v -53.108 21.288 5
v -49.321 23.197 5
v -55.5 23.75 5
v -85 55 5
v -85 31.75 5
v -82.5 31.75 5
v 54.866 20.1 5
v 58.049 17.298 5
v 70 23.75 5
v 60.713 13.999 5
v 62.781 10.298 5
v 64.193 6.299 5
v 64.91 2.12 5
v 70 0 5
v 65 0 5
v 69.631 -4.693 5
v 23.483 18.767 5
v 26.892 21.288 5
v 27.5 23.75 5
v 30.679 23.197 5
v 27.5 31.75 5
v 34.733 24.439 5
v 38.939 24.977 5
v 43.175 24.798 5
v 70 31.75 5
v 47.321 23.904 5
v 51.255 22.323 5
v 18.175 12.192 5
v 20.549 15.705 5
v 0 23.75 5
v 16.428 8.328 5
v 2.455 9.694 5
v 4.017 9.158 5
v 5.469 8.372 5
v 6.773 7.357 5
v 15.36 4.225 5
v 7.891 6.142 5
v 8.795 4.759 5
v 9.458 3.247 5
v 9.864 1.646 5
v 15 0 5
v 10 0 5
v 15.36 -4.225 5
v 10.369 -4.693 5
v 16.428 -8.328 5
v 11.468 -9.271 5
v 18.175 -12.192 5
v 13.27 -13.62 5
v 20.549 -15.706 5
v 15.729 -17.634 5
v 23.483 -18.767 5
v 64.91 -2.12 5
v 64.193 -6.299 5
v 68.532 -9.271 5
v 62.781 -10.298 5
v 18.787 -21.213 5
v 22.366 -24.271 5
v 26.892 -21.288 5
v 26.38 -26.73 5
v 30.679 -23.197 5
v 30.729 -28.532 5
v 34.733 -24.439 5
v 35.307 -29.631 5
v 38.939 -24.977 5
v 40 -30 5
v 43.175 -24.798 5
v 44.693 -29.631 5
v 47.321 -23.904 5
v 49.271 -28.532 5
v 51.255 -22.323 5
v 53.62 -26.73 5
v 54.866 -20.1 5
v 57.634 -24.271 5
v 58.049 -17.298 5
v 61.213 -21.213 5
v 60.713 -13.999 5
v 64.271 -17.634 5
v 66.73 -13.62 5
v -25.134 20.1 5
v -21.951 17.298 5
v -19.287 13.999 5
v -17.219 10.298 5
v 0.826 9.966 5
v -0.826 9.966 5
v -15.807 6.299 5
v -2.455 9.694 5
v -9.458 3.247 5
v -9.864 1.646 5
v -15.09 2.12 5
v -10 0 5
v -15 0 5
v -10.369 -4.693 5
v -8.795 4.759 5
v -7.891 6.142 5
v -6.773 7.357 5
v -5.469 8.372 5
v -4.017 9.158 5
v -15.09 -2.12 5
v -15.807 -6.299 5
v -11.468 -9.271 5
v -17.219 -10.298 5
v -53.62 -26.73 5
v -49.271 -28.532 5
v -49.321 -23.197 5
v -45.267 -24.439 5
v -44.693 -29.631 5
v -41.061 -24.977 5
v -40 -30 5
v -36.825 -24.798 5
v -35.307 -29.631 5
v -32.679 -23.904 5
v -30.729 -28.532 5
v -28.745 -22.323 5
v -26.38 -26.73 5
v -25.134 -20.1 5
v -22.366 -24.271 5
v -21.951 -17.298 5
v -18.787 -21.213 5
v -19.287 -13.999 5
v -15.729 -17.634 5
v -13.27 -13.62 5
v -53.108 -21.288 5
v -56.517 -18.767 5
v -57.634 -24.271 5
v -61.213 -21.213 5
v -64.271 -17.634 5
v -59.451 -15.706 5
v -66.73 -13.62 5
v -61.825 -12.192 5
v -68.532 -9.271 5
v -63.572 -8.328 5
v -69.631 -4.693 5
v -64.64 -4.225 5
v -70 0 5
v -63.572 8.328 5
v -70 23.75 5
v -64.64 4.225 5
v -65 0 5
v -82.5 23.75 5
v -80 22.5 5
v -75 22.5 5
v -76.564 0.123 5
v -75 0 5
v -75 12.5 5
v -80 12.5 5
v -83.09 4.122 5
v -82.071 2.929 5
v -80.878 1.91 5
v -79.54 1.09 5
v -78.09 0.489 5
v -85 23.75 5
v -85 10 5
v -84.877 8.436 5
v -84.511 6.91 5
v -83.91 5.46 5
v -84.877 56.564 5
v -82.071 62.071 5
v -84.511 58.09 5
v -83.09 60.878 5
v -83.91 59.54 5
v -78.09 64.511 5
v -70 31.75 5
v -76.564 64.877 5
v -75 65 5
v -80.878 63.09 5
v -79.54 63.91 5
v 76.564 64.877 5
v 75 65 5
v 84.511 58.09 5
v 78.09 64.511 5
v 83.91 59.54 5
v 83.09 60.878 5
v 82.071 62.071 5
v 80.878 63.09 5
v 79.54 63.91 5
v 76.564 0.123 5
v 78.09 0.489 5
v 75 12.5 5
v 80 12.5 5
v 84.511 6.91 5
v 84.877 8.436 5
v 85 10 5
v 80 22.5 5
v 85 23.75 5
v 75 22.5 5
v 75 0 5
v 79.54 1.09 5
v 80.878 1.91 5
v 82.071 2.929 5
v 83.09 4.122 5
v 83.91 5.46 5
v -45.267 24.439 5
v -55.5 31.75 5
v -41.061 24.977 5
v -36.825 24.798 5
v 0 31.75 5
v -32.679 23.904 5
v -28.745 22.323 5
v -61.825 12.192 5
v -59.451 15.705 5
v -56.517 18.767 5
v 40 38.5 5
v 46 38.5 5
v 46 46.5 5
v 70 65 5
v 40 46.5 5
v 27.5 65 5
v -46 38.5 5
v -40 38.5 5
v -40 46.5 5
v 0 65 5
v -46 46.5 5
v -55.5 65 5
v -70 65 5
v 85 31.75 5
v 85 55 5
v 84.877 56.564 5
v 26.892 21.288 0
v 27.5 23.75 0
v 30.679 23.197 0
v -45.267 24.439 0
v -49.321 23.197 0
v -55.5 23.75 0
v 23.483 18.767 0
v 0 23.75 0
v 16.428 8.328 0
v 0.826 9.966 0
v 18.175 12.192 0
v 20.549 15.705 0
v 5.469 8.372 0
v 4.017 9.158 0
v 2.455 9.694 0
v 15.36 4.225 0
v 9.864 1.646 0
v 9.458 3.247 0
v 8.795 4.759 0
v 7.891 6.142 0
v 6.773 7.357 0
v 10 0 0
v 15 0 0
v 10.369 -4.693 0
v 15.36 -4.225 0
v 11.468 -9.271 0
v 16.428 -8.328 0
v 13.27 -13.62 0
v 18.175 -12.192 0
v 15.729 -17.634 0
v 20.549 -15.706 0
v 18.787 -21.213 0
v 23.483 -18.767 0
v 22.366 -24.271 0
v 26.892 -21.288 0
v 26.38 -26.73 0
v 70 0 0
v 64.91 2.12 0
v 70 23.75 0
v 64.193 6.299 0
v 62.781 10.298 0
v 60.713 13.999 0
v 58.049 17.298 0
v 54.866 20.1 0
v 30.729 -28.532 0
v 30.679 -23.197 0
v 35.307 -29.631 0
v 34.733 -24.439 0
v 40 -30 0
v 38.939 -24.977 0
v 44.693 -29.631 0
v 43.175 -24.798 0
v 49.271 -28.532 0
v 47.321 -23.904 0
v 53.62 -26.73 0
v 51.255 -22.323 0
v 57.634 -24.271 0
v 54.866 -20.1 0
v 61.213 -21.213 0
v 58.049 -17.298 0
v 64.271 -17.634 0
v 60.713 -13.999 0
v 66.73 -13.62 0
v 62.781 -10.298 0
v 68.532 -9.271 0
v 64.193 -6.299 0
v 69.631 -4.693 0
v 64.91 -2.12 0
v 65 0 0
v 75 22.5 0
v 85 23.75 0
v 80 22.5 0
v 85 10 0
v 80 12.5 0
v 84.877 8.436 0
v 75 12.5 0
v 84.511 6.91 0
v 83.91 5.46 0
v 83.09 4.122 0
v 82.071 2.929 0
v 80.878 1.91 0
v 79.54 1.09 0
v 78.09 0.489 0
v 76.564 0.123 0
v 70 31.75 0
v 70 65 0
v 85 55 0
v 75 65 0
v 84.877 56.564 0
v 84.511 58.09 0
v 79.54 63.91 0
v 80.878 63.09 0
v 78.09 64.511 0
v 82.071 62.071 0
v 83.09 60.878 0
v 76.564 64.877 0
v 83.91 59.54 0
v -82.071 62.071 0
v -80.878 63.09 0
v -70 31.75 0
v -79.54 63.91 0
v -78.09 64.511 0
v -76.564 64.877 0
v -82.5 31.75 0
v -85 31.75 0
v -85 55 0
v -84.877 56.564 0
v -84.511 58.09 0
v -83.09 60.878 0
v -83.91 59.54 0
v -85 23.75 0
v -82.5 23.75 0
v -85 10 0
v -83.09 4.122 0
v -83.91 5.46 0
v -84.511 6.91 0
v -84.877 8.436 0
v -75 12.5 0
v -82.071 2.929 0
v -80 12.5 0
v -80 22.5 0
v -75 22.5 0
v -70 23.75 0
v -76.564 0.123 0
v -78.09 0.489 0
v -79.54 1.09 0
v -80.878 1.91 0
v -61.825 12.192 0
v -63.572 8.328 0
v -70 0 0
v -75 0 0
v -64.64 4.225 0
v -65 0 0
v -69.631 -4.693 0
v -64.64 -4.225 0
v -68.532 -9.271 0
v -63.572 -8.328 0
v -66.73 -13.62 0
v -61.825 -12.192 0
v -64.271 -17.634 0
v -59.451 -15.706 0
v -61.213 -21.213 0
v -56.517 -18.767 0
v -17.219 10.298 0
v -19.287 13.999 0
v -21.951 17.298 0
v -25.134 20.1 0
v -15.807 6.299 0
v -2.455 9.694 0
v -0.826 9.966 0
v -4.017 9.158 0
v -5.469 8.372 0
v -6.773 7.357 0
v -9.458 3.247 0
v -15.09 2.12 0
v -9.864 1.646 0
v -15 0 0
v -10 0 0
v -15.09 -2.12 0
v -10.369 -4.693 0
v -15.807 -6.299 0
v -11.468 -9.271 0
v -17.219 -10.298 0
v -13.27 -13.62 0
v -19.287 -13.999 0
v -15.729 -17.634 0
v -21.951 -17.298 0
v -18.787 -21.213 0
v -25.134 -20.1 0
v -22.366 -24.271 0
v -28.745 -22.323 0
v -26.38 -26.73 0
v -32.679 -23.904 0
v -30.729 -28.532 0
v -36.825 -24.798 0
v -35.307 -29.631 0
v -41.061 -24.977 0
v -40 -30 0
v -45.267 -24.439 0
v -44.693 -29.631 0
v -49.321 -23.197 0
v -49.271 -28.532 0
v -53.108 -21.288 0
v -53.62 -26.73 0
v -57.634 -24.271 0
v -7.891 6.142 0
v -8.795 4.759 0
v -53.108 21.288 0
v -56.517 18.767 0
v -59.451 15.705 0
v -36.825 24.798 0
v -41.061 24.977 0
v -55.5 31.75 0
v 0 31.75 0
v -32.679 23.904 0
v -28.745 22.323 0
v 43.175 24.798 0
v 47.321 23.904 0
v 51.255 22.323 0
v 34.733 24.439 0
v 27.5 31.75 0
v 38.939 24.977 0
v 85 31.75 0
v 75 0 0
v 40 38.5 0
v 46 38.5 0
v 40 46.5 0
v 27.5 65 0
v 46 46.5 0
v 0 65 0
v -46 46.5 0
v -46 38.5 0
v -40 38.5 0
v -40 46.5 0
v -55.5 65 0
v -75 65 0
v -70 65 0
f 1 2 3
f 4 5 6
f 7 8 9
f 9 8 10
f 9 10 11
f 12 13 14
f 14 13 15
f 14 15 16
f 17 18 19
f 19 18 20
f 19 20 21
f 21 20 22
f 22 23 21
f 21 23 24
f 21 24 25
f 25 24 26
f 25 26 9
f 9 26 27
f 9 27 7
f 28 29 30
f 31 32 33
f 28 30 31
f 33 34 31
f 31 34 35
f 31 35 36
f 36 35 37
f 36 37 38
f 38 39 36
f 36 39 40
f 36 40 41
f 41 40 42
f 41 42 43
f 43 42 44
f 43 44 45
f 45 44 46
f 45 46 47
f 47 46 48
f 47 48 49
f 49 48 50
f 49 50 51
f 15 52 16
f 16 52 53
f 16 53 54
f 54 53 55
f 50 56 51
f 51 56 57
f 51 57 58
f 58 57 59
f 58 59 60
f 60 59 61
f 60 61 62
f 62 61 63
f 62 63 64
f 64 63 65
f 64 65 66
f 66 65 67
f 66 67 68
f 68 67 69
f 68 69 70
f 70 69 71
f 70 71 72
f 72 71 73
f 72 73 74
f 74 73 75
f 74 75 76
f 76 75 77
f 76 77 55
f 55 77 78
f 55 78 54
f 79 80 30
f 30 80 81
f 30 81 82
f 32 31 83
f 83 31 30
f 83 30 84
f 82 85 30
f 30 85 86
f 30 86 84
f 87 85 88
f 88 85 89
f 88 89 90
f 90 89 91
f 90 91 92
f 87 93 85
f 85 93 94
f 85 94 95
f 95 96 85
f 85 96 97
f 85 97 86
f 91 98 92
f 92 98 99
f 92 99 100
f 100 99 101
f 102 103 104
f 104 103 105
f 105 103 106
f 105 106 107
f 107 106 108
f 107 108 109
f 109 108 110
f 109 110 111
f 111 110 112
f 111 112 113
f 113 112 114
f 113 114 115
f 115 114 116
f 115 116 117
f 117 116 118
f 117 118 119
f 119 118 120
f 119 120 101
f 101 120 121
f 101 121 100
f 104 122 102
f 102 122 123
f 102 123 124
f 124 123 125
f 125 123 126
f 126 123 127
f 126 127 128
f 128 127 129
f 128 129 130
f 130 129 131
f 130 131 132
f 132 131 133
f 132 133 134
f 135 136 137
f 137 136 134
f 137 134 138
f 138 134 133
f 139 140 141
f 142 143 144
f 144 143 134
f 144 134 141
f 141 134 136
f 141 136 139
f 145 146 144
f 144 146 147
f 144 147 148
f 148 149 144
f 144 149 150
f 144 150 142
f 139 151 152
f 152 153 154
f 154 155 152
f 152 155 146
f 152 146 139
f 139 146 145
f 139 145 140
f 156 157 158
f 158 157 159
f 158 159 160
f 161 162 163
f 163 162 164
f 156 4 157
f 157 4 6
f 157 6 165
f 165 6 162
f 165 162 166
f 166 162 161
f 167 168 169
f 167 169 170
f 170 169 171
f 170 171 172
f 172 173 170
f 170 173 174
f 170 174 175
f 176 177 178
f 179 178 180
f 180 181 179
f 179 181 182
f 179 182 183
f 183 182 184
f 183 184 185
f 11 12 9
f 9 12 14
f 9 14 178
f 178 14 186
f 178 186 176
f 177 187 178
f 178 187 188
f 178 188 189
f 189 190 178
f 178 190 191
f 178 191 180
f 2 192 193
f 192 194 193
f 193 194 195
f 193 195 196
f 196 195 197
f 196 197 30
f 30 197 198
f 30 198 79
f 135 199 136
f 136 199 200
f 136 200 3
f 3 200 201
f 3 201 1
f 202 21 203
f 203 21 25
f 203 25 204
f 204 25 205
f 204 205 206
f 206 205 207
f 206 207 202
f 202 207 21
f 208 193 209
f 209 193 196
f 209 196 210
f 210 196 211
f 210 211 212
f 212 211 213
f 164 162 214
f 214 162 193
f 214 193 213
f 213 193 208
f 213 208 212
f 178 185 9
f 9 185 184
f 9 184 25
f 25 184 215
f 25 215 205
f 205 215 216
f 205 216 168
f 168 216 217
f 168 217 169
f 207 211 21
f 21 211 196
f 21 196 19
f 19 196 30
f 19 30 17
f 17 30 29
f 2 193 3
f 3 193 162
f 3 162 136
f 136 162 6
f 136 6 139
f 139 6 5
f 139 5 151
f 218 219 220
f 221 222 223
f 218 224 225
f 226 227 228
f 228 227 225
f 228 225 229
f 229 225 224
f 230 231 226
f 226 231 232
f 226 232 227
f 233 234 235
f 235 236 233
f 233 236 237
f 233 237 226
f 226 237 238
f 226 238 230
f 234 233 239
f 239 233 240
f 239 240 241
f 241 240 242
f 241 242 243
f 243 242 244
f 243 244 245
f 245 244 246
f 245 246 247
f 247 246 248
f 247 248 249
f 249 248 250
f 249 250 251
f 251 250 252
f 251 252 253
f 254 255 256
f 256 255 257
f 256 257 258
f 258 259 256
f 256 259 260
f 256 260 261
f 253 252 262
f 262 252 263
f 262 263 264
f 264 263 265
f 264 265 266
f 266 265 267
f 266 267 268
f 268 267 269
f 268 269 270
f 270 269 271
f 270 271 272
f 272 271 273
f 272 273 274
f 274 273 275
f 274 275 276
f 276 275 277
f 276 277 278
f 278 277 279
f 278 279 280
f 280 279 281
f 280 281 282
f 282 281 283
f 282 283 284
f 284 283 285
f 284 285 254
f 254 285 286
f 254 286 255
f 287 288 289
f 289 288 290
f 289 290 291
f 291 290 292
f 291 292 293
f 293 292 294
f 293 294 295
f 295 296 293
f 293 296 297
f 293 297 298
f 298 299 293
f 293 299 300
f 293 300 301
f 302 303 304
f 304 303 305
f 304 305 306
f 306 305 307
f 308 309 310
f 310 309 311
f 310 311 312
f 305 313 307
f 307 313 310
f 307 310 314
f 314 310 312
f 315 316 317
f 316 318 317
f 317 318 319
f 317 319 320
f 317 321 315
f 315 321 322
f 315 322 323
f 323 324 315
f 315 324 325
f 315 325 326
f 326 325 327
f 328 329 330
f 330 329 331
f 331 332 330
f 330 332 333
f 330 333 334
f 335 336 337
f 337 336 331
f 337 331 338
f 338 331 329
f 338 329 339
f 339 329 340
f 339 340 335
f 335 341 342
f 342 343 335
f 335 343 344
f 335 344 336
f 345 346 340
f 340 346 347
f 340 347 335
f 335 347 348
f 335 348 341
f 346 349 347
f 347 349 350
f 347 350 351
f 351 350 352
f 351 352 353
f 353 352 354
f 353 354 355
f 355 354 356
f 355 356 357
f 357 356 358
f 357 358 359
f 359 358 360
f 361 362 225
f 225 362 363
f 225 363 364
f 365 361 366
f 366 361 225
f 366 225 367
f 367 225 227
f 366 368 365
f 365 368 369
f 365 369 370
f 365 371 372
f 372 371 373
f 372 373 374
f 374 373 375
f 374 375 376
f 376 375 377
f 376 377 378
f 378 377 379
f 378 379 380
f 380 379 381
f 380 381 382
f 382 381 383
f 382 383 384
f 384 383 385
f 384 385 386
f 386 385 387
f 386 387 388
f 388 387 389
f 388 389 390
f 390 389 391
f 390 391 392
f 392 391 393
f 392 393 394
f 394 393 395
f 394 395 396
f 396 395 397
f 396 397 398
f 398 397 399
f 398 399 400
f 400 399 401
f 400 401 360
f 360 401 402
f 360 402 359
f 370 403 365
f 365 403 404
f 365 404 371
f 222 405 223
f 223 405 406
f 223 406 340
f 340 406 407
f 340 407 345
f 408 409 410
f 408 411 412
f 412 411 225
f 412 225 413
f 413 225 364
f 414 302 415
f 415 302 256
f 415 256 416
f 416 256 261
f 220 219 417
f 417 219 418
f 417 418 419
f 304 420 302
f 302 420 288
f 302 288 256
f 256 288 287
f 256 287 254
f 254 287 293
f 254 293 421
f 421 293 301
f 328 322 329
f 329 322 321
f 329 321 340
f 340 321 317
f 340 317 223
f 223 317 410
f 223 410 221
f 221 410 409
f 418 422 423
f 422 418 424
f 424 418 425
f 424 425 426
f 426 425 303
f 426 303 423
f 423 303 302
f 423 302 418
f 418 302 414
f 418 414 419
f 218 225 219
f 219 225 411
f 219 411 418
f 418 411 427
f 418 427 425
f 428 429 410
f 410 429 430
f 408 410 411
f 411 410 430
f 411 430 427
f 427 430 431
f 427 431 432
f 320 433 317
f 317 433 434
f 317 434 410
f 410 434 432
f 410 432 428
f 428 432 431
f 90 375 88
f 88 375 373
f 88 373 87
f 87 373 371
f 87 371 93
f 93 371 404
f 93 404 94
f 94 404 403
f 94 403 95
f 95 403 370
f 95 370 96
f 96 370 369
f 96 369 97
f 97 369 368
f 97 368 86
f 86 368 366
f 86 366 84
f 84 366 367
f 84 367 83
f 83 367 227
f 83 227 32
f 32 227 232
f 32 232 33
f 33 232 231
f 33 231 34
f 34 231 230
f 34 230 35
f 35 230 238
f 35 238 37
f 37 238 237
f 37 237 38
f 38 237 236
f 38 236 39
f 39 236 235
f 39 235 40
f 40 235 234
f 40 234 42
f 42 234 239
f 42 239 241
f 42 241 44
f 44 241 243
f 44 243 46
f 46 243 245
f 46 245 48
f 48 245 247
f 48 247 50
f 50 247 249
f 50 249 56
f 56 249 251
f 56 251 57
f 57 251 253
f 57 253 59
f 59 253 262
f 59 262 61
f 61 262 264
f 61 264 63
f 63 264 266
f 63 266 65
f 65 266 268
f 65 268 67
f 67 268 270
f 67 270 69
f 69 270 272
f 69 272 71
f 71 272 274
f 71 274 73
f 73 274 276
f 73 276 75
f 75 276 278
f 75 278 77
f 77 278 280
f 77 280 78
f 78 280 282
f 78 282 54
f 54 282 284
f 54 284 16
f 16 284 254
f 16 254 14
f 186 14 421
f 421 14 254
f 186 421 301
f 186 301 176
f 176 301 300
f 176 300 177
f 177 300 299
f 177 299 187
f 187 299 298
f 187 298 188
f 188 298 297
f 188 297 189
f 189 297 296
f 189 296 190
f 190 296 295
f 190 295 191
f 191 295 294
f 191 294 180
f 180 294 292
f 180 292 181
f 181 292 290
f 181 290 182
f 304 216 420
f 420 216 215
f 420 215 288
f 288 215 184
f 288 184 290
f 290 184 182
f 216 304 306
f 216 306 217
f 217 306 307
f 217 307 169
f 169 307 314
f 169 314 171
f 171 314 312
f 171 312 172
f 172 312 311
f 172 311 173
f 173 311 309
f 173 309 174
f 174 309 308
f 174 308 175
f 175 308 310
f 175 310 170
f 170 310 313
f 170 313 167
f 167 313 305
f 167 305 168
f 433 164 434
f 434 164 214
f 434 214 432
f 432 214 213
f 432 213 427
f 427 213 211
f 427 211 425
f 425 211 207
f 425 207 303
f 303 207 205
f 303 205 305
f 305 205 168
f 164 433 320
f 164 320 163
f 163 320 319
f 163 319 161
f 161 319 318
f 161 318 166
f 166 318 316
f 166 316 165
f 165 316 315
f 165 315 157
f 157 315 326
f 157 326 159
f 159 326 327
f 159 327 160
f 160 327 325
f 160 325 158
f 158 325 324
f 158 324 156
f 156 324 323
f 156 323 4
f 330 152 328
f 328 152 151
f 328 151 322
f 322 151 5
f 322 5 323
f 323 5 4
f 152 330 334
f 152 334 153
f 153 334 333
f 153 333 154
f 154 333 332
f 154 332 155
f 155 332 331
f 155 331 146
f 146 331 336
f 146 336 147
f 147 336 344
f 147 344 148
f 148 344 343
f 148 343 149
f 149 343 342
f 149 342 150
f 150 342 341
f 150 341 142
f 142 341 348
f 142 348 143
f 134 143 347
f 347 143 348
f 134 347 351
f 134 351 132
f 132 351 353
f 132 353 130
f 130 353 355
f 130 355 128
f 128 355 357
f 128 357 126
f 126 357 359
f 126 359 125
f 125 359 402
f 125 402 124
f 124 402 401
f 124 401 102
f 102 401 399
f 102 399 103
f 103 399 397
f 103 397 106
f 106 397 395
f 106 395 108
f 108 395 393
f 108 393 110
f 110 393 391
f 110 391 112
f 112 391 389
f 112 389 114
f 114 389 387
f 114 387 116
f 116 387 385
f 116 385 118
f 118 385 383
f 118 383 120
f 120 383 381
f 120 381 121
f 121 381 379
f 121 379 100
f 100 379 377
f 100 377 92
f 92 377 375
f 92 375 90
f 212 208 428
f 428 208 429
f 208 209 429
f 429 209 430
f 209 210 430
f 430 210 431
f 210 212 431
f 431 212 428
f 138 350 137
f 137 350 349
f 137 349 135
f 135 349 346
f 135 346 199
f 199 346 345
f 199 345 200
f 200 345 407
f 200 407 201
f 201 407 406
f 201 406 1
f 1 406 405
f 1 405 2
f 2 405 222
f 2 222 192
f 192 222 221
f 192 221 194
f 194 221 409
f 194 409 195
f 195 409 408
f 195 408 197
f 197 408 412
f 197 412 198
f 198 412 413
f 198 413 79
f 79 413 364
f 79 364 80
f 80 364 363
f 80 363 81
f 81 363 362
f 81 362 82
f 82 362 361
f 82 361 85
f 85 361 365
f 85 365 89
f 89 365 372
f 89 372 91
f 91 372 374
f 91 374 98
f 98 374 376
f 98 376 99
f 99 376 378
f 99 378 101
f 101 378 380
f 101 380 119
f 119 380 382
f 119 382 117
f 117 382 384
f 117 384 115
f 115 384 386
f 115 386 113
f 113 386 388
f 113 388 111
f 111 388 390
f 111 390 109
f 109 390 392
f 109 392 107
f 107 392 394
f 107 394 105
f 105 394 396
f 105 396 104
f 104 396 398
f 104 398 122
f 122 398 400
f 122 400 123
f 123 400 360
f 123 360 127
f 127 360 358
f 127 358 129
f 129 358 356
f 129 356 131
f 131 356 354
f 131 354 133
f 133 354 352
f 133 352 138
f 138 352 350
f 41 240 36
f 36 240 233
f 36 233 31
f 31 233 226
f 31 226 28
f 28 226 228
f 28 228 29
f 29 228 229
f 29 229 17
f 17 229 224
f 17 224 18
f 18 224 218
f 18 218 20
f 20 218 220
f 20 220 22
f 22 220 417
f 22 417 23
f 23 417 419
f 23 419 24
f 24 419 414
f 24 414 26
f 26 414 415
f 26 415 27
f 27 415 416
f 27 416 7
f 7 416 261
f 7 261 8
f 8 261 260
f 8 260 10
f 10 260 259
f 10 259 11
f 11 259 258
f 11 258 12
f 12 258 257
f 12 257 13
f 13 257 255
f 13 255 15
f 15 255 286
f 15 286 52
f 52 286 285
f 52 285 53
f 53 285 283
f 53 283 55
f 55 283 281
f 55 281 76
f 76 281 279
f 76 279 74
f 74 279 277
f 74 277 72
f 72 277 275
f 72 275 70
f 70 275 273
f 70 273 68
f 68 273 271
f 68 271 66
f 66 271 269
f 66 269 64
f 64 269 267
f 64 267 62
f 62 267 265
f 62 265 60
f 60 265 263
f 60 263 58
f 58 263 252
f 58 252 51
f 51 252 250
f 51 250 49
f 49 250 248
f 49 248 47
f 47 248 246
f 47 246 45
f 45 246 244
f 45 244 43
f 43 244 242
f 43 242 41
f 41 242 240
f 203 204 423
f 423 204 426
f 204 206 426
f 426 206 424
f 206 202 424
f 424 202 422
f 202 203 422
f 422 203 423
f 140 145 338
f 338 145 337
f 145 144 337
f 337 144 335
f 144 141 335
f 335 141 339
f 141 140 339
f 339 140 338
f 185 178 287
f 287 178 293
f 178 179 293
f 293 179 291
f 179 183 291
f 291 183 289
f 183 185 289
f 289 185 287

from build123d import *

# Parameters (mm, degrees)
SKETCH1_R           = 25
SKETCH1_W           = 5
SKETCH1_H           = 10
SKETCH1_W_2         = 6
SKETCH1_H_2         = 8
BOSS_EXTRUDE1_DEPTH = 5


with BuildPart() as part:
    # Sketch1 → Boss-Extrude1 (new body)
    with BuildSketch(Plane.XY):
        with BuildLine():
            Line((-85, 10), (-85, 55))
            ThreePointArc((-85, 55), (-82.071067812, 62.071067812), (-75, 65))
            Line((-75, 65), (75, 65))
            ThreePointArc((75, 65), (82.071067812, 62.071067812), (85, 55))
            Line((85, 55), (85, 10))
            ThreePointArc((85, 10), (82.071067812, 2.928932188), (75, 0))
            Line((75, 0), (70, 0))
            ThreePointArc((70, 0), (40, -30), (10, 0))
            ThreePointArc((10, 0), (0, 10), (-10, 0))
            ThreePointArc((-10, 0), (-40, -30), (-70, 0))
            Line((-70, 0), (-75, 0))
            ThreePointArc((-75, 0), (-82.071067812, 2.928932188), (-85, 10))
        make_face()
        with Locations((-40, 0)):
            Circle(SKETCH1_R, mode=Mode.SUBTRACT)
        with Locations((40, 0)):
            Circle(SKETCH1_R, mode=Mode.SUBTRACT)
        with Locations((77.5, 17.5)):
            Rectangle(SKETCH1_W, SKETCH1_H, mode=Mode.SUBTRACT)
        with Locations((-77.5, 17.5)):
            Rectangle(SKETCH1_W, SKETCH1_H, mode=Mode.SUBTRACT)
        with Locations((-43, 42.5)):
            Rectangle(SKETCH1_W_2, SKETCH1_H_2, mode=Mode.SUBTRACT)
        with Locations((43, 42.5)):
            Rectangle(SKETCH1_W_2, SKETCH1_H_2, mode=Mode.SUBTRACT)
    extrude(amount=BOSS_EXTRUDE1_DEPTH)


solid = part.part
